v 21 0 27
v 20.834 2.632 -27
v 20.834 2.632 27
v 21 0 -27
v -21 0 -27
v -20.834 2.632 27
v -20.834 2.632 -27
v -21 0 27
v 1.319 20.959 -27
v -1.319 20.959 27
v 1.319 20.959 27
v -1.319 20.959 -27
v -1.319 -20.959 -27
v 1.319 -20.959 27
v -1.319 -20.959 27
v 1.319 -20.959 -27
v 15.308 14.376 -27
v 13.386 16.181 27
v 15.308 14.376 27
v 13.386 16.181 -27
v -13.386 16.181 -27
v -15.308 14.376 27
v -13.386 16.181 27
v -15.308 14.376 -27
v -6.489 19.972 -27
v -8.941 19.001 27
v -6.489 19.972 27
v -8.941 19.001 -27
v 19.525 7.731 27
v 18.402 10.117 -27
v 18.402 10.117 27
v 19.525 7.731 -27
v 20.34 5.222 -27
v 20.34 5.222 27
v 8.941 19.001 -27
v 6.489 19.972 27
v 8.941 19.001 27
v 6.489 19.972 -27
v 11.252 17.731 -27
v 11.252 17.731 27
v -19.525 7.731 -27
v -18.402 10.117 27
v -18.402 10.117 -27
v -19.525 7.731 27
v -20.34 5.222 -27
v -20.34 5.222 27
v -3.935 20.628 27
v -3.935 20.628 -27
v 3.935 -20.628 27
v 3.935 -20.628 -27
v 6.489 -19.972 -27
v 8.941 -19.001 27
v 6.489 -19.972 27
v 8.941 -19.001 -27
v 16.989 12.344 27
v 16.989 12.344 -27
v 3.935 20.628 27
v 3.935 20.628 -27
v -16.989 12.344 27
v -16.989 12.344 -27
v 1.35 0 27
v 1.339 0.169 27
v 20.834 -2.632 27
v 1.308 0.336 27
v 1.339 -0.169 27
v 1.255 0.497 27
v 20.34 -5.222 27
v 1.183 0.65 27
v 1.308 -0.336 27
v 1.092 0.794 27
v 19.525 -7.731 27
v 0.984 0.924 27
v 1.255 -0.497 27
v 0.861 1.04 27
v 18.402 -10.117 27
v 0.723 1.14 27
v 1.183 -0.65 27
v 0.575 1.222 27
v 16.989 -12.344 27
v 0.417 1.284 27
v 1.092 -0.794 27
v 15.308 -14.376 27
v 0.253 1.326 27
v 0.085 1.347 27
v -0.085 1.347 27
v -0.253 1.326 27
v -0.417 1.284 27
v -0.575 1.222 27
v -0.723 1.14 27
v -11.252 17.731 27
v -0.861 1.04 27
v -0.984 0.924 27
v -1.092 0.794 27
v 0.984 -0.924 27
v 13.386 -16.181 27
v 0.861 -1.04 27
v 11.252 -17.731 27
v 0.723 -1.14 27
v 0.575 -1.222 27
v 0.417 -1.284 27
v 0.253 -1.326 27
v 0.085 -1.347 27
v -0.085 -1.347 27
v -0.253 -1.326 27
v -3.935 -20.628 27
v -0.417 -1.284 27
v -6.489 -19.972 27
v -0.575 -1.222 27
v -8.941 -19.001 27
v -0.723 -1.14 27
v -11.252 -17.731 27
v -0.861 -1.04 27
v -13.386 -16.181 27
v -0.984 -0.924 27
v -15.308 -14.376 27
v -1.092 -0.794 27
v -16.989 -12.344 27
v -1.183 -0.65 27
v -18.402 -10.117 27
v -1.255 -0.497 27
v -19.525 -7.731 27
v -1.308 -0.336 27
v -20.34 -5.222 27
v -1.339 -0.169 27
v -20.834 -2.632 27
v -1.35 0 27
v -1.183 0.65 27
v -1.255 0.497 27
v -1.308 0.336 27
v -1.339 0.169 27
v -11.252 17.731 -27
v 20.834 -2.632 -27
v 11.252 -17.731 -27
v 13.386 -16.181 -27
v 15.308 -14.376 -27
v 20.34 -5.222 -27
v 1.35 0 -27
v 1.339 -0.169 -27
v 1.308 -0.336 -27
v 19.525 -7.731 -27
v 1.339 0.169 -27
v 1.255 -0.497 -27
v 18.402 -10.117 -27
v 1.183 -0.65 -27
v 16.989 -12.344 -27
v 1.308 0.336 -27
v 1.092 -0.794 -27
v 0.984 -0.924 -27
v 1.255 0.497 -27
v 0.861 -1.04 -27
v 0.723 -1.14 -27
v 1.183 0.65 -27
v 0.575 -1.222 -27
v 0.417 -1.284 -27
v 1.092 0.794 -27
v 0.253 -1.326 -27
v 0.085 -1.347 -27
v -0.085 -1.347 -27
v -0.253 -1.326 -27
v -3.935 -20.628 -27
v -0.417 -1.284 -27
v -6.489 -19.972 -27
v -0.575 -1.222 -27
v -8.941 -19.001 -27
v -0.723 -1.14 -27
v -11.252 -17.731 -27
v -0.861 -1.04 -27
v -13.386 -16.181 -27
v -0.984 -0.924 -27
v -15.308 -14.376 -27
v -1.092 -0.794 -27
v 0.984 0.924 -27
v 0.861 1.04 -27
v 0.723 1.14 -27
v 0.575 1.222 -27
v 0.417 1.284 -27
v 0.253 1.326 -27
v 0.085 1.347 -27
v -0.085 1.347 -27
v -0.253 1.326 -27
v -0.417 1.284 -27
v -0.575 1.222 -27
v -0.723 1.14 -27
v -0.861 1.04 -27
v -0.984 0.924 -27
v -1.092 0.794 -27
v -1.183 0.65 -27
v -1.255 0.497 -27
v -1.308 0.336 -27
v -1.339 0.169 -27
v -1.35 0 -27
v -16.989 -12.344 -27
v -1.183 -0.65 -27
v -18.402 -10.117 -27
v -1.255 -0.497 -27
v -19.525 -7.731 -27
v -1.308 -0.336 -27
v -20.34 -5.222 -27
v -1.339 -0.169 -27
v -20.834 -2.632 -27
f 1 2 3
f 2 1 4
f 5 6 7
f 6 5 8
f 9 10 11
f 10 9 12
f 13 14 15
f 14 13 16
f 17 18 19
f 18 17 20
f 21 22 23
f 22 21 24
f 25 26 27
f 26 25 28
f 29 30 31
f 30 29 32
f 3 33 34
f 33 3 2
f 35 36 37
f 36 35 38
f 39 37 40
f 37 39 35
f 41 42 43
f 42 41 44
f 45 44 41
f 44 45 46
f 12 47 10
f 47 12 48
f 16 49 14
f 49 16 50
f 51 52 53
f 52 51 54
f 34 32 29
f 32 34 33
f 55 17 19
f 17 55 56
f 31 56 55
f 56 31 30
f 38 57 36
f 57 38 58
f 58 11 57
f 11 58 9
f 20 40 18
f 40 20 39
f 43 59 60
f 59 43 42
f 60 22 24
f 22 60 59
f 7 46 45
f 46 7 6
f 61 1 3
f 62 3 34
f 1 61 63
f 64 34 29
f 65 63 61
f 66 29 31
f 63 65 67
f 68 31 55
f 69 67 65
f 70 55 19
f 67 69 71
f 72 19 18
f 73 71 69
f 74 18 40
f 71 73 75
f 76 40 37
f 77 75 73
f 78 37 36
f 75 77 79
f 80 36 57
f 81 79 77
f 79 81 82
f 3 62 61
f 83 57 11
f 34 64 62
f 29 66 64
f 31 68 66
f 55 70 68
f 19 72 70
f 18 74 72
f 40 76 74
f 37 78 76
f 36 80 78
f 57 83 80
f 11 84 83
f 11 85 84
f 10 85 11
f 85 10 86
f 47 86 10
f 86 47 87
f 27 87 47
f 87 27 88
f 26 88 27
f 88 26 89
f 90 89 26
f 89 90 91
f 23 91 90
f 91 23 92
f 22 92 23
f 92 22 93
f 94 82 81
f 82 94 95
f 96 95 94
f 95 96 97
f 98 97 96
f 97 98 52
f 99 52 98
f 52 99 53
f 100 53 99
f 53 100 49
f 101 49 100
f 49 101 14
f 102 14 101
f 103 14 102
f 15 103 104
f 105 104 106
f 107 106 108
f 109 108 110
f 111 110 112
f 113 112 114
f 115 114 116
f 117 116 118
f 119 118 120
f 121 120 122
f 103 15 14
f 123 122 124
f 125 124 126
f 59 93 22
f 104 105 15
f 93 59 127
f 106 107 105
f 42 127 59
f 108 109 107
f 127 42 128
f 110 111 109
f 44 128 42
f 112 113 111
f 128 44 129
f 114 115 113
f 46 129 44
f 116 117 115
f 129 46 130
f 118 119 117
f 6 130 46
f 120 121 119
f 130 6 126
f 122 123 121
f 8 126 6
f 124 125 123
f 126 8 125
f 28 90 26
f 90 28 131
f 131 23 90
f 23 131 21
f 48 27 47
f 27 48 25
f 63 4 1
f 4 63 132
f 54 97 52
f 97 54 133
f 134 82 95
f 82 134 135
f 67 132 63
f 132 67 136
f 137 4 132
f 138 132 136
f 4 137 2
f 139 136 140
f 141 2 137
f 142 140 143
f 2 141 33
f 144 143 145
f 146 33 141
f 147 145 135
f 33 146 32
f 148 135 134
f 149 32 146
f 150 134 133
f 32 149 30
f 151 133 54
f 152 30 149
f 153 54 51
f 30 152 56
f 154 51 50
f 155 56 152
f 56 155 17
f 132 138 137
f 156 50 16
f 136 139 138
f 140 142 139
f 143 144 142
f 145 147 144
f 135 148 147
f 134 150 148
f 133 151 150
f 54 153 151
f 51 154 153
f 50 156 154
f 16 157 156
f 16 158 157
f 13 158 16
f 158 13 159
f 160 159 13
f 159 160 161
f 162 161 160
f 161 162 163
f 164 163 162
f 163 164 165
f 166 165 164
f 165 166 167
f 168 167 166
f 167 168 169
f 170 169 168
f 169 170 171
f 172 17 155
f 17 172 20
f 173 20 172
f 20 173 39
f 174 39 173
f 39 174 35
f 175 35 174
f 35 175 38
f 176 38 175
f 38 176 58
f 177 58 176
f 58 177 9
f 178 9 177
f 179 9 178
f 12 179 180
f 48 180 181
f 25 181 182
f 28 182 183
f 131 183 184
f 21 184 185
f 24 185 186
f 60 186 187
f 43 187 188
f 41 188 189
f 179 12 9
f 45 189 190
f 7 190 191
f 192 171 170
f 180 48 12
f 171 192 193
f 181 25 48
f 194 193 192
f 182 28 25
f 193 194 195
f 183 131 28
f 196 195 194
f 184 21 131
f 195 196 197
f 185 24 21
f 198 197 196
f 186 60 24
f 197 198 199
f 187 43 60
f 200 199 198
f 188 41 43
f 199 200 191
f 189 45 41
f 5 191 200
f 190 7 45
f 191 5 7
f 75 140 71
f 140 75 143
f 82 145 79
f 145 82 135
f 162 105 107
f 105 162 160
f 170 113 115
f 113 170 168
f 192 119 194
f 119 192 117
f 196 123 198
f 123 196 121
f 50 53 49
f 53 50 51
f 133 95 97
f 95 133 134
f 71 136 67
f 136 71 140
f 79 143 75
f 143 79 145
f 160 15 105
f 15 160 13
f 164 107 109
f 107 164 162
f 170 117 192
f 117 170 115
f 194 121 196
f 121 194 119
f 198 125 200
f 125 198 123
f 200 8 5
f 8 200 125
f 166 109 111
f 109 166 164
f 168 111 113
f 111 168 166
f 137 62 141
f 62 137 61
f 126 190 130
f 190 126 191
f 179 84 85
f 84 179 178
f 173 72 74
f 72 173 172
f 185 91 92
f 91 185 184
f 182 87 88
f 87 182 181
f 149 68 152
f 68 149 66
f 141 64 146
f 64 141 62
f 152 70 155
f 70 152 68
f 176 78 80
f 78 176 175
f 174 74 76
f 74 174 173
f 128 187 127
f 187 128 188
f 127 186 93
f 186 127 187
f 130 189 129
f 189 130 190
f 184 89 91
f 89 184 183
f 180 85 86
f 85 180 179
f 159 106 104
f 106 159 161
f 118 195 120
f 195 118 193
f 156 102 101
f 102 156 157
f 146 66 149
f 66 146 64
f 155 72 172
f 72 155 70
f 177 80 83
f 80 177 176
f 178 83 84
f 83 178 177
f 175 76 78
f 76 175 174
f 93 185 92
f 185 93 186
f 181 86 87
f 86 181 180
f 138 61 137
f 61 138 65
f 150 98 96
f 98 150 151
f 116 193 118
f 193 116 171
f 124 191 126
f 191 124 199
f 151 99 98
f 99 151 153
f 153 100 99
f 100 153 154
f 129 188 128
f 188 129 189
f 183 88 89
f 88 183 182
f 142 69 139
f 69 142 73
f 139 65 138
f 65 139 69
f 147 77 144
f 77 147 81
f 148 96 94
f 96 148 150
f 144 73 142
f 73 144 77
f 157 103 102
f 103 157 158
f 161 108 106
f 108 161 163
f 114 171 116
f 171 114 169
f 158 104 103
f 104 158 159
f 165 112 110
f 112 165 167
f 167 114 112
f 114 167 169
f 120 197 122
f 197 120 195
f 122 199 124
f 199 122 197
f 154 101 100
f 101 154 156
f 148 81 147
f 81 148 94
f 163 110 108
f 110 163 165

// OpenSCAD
$fn = 50;


difference() {
	union() {
		translate(v = [0, 0, -27.0000000000]) {
			cylinder(h = 54, r = 21.0000000000);
		}
	}
	union() {
		translate(v = [0, 0, -100.0000000000]) {
			cylinder(h = 200, r = 1.3500000000);
		}
	}
}
